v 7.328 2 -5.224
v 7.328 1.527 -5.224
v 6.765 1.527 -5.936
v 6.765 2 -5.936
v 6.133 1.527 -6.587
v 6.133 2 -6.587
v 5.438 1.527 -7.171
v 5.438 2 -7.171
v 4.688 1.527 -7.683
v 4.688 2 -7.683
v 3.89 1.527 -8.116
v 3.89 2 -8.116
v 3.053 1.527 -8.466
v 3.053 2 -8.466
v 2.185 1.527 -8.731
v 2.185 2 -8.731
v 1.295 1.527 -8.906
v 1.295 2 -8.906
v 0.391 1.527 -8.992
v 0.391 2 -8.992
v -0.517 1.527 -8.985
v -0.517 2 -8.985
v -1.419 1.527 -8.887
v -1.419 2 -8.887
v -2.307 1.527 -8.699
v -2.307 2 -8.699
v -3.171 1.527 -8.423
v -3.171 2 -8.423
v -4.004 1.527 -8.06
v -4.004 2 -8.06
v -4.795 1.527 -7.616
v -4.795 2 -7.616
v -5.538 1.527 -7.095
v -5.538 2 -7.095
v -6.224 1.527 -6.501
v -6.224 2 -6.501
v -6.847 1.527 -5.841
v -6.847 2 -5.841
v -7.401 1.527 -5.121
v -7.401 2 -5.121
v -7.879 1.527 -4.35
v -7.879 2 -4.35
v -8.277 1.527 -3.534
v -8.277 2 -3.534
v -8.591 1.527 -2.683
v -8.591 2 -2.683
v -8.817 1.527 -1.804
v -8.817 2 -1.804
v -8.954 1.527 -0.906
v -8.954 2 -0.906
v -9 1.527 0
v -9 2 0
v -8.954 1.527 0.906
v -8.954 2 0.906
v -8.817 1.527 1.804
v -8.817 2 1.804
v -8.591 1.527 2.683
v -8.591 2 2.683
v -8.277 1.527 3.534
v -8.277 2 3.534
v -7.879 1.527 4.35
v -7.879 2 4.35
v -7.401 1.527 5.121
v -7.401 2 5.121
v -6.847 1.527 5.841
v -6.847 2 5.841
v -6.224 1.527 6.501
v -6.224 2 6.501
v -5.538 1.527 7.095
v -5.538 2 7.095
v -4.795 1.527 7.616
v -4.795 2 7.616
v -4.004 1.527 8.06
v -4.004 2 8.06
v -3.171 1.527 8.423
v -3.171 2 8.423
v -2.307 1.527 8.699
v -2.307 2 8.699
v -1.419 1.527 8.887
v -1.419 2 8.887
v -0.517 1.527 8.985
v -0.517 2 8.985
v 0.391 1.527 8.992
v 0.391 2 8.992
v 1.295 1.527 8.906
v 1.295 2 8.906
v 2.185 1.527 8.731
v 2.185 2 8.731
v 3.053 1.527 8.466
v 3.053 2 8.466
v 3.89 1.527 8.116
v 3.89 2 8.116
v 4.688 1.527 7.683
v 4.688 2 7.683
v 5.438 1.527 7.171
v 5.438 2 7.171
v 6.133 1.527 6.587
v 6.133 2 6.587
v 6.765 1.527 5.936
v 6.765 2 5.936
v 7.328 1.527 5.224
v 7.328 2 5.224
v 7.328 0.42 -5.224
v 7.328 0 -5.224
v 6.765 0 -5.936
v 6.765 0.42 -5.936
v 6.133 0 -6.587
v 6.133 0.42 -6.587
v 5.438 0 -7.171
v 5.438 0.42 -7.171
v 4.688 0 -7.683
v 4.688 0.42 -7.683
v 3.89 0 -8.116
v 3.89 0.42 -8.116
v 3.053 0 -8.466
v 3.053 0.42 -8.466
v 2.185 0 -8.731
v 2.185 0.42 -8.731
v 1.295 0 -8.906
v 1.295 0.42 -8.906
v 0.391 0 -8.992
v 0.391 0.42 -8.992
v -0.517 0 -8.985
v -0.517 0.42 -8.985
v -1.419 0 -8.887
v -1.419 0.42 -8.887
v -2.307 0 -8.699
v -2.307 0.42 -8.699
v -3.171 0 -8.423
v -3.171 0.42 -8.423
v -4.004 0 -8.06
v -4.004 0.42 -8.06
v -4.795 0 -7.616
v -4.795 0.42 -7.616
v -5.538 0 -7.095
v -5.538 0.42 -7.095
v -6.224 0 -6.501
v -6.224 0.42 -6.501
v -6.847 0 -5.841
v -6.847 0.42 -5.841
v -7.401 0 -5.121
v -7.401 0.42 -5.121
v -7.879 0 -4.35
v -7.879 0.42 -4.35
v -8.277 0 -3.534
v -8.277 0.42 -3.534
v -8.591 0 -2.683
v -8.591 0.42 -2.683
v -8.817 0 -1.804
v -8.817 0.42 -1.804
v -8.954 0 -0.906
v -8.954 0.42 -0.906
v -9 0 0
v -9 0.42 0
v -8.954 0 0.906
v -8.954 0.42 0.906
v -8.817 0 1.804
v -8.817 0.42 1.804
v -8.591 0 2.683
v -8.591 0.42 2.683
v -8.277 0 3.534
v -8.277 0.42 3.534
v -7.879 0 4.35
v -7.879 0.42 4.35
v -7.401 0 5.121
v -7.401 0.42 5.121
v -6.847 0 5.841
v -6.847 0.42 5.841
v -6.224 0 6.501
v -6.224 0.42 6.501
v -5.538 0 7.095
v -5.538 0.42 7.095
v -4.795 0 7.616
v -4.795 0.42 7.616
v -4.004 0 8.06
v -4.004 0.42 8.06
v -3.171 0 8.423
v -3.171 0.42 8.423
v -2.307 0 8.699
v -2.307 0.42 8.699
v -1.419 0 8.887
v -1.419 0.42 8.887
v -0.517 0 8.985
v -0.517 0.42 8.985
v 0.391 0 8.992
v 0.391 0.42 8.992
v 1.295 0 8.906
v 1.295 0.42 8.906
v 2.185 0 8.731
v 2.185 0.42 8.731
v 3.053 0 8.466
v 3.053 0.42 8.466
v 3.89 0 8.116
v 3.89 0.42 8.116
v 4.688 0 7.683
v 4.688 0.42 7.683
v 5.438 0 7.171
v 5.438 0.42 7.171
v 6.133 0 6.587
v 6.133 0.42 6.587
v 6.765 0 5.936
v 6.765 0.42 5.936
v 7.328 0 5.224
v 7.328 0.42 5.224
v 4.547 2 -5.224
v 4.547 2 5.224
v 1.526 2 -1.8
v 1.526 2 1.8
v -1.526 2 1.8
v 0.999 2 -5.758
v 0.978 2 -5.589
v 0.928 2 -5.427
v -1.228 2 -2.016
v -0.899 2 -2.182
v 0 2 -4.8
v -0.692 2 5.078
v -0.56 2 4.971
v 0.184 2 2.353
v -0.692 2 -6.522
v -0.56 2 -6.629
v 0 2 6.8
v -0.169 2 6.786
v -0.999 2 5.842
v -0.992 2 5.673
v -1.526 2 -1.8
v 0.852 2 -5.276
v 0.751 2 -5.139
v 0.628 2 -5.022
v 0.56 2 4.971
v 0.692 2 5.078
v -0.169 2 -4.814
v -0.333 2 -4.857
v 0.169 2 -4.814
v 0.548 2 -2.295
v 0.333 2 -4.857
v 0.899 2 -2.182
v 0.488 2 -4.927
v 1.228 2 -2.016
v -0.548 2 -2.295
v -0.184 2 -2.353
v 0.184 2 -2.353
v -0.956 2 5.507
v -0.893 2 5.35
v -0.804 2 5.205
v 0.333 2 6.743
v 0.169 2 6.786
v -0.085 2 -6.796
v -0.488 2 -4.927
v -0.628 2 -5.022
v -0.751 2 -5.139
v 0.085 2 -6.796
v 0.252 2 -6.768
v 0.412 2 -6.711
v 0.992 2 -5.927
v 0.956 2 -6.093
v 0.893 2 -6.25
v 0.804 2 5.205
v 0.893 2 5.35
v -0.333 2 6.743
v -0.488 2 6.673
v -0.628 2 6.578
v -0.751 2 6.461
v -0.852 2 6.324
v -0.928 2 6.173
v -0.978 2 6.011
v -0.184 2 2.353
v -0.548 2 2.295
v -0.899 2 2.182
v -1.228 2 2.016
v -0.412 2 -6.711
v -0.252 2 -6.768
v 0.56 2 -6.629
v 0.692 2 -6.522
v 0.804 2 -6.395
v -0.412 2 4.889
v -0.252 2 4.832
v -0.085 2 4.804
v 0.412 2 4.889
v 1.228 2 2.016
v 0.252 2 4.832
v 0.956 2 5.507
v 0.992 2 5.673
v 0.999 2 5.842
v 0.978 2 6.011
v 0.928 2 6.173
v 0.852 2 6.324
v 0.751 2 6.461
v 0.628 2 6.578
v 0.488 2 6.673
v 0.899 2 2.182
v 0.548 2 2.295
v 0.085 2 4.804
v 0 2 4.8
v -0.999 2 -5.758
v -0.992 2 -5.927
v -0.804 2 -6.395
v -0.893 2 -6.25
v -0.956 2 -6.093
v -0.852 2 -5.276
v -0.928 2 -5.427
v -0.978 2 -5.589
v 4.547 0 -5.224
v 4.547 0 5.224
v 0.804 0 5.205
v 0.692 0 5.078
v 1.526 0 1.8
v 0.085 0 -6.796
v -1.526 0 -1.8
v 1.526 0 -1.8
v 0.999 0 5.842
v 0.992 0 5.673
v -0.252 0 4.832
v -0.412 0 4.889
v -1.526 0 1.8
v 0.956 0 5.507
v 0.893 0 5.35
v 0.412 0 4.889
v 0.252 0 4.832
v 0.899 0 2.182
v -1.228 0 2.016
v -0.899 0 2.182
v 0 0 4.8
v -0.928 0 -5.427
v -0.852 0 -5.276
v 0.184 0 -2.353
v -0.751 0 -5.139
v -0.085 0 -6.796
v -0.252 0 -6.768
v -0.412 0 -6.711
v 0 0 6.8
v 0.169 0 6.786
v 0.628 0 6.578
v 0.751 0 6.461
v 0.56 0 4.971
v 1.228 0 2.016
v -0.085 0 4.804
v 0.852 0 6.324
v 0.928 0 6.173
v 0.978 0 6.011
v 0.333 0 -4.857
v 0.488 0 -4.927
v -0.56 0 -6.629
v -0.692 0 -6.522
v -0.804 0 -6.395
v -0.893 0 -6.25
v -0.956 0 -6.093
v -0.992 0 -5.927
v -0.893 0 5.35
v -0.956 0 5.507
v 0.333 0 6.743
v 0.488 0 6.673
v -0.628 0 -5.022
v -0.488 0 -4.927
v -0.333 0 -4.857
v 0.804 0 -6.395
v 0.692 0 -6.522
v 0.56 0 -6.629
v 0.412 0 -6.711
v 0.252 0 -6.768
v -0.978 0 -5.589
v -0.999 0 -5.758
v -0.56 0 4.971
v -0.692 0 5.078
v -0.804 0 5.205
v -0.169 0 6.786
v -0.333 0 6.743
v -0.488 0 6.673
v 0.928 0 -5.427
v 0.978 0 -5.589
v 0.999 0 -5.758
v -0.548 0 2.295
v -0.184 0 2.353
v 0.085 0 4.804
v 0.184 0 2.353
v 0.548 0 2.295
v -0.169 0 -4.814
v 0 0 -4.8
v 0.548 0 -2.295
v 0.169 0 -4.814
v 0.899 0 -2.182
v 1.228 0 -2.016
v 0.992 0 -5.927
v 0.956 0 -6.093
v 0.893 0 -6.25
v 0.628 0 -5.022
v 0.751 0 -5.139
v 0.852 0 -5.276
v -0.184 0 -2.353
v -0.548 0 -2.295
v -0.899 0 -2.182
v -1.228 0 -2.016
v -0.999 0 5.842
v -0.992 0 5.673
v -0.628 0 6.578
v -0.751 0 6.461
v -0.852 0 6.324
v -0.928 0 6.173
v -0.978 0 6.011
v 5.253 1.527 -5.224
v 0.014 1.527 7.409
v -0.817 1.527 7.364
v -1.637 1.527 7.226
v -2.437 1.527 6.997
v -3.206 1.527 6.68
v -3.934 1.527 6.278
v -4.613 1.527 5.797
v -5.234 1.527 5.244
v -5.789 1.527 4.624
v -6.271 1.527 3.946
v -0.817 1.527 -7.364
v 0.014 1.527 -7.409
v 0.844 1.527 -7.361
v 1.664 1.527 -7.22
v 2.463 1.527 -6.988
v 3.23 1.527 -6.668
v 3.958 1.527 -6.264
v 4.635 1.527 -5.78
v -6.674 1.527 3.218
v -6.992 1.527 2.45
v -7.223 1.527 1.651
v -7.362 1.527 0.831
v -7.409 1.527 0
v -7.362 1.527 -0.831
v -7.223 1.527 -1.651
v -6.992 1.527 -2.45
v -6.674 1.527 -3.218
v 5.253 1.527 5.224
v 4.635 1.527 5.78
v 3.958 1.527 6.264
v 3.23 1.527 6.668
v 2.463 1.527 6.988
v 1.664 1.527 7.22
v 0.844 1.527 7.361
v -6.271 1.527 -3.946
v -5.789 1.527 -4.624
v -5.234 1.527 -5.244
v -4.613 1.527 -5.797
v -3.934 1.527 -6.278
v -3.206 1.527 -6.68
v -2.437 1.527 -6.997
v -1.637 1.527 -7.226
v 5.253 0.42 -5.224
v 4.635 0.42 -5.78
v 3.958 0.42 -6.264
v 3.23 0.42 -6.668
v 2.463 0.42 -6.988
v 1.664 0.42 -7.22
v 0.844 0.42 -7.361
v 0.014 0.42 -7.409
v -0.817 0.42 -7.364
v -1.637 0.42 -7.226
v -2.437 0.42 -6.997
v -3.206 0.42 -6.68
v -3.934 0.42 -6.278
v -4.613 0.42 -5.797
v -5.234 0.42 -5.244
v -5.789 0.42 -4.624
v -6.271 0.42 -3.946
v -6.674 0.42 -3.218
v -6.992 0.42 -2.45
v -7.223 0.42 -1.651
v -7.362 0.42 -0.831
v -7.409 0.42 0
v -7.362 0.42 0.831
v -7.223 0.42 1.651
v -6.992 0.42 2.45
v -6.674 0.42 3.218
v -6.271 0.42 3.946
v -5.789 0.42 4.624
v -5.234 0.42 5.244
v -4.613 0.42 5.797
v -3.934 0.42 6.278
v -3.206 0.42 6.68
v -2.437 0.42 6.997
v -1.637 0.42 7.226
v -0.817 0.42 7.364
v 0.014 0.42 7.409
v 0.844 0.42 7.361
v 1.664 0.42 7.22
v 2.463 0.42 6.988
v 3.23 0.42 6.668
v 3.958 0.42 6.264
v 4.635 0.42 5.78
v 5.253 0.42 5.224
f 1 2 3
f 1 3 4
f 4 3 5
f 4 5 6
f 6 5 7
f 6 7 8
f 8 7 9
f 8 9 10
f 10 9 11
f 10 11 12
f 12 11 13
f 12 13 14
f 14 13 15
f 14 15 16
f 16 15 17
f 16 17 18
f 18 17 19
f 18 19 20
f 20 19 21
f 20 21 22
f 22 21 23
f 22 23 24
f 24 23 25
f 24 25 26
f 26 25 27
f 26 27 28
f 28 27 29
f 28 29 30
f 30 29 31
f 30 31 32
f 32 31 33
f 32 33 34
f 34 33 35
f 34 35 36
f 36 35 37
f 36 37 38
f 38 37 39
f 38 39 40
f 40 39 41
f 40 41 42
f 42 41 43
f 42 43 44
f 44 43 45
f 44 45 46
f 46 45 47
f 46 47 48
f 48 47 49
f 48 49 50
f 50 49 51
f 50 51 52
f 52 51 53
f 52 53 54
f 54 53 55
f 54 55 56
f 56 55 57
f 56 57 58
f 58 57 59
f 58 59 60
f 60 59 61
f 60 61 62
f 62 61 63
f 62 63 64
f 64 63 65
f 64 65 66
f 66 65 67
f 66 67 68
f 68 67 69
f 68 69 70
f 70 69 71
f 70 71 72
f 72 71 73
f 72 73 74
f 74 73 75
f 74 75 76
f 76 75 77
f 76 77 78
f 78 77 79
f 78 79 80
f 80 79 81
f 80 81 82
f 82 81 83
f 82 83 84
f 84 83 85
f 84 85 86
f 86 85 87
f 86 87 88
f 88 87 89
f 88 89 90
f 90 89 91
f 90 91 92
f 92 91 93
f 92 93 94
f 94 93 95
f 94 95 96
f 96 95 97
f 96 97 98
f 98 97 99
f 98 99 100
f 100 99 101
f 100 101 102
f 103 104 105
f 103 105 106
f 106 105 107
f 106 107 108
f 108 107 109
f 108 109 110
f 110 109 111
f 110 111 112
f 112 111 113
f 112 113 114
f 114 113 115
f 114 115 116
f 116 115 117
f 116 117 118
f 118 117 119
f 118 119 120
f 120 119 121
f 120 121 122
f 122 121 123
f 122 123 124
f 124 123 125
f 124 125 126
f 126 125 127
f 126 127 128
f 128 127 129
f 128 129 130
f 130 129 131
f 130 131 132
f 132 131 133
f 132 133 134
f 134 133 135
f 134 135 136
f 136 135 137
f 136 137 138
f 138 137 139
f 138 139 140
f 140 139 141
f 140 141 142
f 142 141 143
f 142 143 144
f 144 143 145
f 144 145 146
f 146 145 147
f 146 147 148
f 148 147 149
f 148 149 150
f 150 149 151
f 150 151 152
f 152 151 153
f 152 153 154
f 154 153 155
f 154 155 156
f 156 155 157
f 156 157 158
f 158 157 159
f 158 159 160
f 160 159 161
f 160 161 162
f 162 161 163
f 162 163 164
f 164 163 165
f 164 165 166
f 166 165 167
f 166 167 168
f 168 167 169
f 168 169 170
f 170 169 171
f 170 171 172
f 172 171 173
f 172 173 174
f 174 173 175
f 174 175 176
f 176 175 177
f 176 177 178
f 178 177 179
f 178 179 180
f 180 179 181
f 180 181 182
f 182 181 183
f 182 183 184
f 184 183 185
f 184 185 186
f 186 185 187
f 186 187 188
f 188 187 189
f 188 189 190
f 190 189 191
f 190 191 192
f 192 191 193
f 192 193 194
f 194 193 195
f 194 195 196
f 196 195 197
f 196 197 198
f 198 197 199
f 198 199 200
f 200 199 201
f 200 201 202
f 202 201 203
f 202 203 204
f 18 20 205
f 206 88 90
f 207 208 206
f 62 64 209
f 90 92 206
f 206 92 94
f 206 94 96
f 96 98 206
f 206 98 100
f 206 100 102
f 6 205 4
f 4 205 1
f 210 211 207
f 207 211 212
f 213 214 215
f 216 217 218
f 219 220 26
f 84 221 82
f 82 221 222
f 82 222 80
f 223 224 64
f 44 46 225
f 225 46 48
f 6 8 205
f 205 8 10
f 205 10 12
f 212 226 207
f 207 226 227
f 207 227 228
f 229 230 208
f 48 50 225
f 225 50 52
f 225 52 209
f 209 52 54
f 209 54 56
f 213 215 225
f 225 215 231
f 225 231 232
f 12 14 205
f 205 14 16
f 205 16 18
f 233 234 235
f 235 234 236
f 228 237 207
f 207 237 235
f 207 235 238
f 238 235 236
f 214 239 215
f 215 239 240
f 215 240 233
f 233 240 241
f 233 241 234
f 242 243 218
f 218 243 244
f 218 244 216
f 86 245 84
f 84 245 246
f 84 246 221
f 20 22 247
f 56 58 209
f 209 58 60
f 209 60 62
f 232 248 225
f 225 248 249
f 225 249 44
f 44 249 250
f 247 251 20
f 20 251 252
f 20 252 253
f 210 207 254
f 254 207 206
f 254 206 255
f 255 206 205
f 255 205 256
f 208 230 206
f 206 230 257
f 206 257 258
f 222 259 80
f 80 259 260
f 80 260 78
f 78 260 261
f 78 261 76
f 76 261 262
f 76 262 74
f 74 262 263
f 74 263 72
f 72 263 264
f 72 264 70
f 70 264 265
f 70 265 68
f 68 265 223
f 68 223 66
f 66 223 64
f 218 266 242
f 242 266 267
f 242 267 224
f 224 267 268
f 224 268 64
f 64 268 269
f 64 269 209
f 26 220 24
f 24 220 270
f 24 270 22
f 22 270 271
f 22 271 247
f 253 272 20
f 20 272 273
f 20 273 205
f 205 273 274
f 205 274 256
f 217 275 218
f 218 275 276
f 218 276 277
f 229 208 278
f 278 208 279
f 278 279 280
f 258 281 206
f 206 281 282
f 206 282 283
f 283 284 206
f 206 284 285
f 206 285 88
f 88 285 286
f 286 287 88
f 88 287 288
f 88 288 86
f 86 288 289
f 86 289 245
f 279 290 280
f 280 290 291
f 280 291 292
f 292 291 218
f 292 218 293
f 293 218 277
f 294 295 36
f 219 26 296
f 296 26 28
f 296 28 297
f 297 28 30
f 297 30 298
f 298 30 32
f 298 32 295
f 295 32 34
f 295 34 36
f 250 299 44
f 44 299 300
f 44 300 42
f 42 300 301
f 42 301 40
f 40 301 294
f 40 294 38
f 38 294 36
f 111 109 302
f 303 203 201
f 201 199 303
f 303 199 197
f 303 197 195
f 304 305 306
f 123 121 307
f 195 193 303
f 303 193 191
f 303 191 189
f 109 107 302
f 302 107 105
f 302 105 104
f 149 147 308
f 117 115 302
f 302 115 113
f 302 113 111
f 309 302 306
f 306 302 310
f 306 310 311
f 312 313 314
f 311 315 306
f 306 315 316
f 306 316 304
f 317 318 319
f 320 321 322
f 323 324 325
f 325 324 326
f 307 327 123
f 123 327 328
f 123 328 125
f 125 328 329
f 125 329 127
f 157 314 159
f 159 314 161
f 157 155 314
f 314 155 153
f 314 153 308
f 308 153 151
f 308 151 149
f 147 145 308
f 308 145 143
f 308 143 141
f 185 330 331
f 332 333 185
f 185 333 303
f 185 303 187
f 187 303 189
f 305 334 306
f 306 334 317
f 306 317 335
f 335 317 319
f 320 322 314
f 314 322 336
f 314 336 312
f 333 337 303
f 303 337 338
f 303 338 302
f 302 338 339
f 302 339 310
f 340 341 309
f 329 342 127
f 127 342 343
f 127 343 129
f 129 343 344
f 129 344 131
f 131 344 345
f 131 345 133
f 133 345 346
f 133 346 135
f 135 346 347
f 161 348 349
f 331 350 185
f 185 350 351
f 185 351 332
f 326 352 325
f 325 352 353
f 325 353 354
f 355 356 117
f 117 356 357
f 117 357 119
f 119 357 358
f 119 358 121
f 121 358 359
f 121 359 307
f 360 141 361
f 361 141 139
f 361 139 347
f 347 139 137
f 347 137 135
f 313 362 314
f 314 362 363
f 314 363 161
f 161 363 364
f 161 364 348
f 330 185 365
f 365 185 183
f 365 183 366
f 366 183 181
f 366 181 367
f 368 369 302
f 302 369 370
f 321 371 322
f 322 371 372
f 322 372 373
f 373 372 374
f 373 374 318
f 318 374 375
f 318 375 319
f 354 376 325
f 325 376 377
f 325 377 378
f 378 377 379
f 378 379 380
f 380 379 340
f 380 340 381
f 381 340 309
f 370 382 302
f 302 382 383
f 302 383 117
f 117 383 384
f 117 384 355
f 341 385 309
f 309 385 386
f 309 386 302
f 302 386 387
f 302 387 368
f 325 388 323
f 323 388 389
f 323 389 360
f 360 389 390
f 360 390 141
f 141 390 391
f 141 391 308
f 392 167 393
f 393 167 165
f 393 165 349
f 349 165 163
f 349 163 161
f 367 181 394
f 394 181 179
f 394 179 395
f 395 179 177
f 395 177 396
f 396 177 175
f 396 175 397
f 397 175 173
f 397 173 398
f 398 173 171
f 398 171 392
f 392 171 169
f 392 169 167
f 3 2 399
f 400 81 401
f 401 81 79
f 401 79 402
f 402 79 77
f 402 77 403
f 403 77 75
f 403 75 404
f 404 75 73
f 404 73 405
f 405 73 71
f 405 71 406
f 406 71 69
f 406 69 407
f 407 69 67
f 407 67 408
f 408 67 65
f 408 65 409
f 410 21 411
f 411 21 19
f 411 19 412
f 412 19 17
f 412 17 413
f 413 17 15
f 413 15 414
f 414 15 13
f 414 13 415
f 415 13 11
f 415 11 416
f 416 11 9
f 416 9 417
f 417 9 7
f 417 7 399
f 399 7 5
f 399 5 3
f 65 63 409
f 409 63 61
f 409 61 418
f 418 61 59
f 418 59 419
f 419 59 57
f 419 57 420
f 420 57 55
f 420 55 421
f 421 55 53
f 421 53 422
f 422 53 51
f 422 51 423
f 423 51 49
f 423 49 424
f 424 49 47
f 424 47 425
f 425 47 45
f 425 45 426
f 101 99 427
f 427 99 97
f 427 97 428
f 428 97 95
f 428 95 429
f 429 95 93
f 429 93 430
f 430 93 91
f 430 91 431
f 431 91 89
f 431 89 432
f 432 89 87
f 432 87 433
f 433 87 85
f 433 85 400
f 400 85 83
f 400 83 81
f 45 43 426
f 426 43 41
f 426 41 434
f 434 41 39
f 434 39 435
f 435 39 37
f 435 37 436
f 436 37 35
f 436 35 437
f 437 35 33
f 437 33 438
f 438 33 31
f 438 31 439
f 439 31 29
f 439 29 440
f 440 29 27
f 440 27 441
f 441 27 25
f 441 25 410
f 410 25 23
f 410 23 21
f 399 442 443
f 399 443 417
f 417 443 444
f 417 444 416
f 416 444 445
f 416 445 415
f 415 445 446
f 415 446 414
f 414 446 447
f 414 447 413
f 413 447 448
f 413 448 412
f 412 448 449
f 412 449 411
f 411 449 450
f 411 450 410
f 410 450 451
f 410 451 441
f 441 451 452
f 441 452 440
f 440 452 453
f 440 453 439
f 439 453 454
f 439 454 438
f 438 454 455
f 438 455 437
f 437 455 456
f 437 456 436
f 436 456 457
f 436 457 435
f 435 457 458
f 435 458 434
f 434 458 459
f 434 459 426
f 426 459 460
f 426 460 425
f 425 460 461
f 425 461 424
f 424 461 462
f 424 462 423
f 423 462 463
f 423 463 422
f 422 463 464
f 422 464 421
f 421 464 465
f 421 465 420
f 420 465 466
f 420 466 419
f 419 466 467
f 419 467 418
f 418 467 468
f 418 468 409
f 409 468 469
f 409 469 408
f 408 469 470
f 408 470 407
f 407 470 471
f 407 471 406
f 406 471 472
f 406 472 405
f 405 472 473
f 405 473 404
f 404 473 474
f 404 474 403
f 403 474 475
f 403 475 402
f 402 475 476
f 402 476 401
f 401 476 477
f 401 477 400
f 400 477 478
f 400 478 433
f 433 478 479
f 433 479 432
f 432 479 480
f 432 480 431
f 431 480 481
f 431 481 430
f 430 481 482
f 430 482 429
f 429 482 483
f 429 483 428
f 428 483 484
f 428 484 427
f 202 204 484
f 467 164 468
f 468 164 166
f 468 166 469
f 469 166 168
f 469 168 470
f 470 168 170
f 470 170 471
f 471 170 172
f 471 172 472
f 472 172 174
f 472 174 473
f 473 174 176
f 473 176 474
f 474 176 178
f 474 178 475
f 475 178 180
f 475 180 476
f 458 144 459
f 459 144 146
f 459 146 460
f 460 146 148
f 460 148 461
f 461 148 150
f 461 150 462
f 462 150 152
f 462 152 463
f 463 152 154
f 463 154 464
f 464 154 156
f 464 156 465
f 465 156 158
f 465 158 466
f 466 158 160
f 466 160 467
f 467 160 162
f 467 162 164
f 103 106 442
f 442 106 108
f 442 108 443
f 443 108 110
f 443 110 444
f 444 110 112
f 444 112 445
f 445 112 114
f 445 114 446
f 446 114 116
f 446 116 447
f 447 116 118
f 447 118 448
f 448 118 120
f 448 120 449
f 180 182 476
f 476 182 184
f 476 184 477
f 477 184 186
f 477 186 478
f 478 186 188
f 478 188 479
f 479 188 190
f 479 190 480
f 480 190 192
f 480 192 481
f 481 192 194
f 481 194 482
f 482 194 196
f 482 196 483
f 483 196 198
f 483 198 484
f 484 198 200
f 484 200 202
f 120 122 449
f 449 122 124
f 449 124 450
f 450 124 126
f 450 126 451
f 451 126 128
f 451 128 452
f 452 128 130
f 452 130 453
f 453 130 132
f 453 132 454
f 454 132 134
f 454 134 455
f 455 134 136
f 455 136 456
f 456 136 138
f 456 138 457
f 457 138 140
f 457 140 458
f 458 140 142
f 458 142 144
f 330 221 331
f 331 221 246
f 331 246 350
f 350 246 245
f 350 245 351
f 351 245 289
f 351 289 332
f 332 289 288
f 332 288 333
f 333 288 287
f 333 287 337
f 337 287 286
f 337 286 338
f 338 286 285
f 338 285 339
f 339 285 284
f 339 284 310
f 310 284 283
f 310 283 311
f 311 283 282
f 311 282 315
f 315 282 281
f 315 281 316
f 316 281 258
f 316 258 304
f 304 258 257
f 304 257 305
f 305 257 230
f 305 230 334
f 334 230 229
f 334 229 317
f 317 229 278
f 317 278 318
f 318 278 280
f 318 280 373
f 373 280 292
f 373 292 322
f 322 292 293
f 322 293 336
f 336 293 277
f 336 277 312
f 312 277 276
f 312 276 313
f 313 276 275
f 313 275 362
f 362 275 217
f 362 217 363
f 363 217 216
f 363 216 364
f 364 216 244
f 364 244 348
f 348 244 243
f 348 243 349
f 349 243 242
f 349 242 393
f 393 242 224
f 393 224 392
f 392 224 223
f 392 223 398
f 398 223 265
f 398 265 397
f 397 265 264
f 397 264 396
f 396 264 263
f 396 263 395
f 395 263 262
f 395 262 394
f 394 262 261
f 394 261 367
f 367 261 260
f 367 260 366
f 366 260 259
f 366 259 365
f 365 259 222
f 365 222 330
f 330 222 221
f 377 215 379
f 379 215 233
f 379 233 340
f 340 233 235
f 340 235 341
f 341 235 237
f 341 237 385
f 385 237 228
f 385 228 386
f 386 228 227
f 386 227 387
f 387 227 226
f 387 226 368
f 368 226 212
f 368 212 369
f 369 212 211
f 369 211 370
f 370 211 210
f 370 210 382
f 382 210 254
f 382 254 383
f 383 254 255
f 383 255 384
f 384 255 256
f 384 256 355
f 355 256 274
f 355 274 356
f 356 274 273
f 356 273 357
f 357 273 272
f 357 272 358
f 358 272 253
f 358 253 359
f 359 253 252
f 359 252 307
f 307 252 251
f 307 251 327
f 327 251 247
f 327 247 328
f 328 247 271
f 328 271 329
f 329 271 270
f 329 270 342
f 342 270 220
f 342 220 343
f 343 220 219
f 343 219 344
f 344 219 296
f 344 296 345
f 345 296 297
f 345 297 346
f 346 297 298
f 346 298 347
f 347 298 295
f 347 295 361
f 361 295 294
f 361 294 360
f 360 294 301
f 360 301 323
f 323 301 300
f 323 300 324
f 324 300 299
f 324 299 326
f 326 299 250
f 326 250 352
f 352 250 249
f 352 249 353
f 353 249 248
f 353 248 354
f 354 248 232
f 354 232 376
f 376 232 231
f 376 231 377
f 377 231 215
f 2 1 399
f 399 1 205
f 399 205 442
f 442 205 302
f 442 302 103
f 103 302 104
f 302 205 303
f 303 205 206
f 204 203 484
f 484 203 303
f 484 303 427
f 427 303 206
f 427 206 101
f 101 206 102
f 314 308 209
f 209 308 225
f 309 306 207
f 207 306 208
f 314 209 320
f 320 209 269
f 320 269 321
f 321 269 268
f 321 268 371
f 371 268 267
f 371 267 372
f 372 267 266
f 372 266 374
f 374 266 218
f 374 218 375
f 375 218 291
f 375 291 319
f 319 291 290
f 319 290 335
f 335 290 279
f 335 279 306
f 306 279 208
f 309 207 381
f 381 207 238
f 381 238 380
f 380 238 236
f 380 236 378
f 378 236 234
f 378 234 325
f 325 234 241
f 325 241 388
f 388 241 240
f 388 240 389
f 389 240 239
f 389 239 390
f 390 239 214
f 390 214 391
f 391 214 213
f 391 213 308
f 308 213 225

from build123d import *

# Parameters (mm, degrees)
SKETCH_1_R          = 9
EXTRUDE_3_DEPTH     = 2
SKETCH_2_R          = 1
CUT_EXTRUDE_1_DEPTH = 2
CUT_EXTRUDE_2_DEPTH = 4
SKETCH_6_W          = 1.51058073
SKETCH_6_H          = 3.6
EXTRUDE_4_DEPTH     = 2
CUT_EXTRUDE_3_DEPTH = 2


with BuildPart() as part:
    # 草图1 → 凸台-拉伸3 (new body)
    with BuildSketch(Plane(origin=(0, 0, 0), x_dir=(1, 0, 0), z_dir=(0, 1, 0))):
        with Locations(Location((0, 0, 0), (0, 0, 270))):
            Circle(SKETCH_1_R)
        with BuildLine():
            ThreePointArc((1.526302722, -1.8), (2.36, 0), (1.526302722, 1.8))
            Line((1.526302722, 1.8), (-1.526302722, 1.8))
            ThreePointArc((-1.526302722, 1.8), (-2.36, 0), (-1.526302722, -1.8))
            Line((-1.526302722, -1.8), (1.526302722, -1.8))
        make_face(mode=Mode.SUBTRACT)
    extrude(amount=EXTRUDE_3_DEPTH)

    # 草图2 → 切除-拉伸1 (cut)
    with BuildSketch(Plane(origin=(0, 2, 0), x_dir=(1, 0, 0), z_dir=(0, 1, 0))):
        with Locations(Location((0, 5.8, 0), (0, 0, 270))):
            Circle(SKETCH_2_R)
        with Locations(Location((0, -5.8, 0), (0, 0, 90))):
            Circle(SKETCH_2_R)
    extrude(amount=-CUT_EXTRUDE_1_DEPTH, mode=Mode.SUBTRACT)

    # 草图3 → 切除-旋转1 (revolve, cut)
    with BuildSketch(Plane.XY, mode=Mode.PRIVATE) as cut_revolve_1_sk:
        Polygon((9, 1.526508216), (8.095229941, 1.526508216), (7.409057175, 1.526508216), (7.409057175, 0.419519155), (8.095229941, 0.419519155), (9, 0.419519155), align=None)
    revolve(cut_revolve_1_sk.sketch.rotate(Axis((0, 0, 0), (0, 1, 0)), 90), axis=Axis((0, 0, 0), (0, 1, 0)), mode=Mode.SUBTRACT)

    # 草图4 → 切除-拉伸2 (cut)
    with BuildSketch(Plane(origin=(0, 0, 0), x_dir=(1, 0, 0), z_dir=(0, 1, 0))):
        Polygon((8.707482993, 5.224489796), (5.925925926, 5.224489796), (4.547241119, 5.224489796), (4.547241119, -5.224489796), (5.925925926, -5.224489796), (8.707482993, -5.224489796), (10.594104308, -5.224489796), (10.594104308, 5.224489796), align=None)
    extrude(amount=CUT_EXTRUDE_2_DEPTH, mode=Mode.SUBTRACT)

    # 草图6 → 凸台-拉伸4 (add)
    with BuildSketch(Plane(origin=(0, 2, 0), x_dir=(1, 0, 0), z_dir=(0, 1, 0))):
        with Locations((-2.281593087, 0)):
            Rectangle(SKETCH_6_W, SKETCH_6_H)
        with Locations((2.281593087, 0)):
            Rectangle(SKETCH_6_W, SKETCH_6_H)
    extrude(amount=-EXTRUDE_4_DEPTH)

    # 草图5 → 切除-拉伸3 (cut)
    with BuildSketch(Plane(origin=(0, 2, 0), x_dir=(1, 0, 0), z_dir=(0, 1, 0))):
        with BuildLine():
            Line((1.526302722, 1.8), (1.526302722, -1.8))
            ThreePointArc((1.526302722, -1.8), (0, -2.36), (-1.526302722, -1.8))
            Line((-1.526302722, -1.8), (-1.526302722, 1.8))
            ThreePointArc((-1.526302722, 1.8), (0, 2.36), (1.526302722, 1.8))
        make_face()
    extrude(amount=-CUT_EXTRUDE_3_DEPTH, mode=Mode.SUBTRACT)


solid = part.part
